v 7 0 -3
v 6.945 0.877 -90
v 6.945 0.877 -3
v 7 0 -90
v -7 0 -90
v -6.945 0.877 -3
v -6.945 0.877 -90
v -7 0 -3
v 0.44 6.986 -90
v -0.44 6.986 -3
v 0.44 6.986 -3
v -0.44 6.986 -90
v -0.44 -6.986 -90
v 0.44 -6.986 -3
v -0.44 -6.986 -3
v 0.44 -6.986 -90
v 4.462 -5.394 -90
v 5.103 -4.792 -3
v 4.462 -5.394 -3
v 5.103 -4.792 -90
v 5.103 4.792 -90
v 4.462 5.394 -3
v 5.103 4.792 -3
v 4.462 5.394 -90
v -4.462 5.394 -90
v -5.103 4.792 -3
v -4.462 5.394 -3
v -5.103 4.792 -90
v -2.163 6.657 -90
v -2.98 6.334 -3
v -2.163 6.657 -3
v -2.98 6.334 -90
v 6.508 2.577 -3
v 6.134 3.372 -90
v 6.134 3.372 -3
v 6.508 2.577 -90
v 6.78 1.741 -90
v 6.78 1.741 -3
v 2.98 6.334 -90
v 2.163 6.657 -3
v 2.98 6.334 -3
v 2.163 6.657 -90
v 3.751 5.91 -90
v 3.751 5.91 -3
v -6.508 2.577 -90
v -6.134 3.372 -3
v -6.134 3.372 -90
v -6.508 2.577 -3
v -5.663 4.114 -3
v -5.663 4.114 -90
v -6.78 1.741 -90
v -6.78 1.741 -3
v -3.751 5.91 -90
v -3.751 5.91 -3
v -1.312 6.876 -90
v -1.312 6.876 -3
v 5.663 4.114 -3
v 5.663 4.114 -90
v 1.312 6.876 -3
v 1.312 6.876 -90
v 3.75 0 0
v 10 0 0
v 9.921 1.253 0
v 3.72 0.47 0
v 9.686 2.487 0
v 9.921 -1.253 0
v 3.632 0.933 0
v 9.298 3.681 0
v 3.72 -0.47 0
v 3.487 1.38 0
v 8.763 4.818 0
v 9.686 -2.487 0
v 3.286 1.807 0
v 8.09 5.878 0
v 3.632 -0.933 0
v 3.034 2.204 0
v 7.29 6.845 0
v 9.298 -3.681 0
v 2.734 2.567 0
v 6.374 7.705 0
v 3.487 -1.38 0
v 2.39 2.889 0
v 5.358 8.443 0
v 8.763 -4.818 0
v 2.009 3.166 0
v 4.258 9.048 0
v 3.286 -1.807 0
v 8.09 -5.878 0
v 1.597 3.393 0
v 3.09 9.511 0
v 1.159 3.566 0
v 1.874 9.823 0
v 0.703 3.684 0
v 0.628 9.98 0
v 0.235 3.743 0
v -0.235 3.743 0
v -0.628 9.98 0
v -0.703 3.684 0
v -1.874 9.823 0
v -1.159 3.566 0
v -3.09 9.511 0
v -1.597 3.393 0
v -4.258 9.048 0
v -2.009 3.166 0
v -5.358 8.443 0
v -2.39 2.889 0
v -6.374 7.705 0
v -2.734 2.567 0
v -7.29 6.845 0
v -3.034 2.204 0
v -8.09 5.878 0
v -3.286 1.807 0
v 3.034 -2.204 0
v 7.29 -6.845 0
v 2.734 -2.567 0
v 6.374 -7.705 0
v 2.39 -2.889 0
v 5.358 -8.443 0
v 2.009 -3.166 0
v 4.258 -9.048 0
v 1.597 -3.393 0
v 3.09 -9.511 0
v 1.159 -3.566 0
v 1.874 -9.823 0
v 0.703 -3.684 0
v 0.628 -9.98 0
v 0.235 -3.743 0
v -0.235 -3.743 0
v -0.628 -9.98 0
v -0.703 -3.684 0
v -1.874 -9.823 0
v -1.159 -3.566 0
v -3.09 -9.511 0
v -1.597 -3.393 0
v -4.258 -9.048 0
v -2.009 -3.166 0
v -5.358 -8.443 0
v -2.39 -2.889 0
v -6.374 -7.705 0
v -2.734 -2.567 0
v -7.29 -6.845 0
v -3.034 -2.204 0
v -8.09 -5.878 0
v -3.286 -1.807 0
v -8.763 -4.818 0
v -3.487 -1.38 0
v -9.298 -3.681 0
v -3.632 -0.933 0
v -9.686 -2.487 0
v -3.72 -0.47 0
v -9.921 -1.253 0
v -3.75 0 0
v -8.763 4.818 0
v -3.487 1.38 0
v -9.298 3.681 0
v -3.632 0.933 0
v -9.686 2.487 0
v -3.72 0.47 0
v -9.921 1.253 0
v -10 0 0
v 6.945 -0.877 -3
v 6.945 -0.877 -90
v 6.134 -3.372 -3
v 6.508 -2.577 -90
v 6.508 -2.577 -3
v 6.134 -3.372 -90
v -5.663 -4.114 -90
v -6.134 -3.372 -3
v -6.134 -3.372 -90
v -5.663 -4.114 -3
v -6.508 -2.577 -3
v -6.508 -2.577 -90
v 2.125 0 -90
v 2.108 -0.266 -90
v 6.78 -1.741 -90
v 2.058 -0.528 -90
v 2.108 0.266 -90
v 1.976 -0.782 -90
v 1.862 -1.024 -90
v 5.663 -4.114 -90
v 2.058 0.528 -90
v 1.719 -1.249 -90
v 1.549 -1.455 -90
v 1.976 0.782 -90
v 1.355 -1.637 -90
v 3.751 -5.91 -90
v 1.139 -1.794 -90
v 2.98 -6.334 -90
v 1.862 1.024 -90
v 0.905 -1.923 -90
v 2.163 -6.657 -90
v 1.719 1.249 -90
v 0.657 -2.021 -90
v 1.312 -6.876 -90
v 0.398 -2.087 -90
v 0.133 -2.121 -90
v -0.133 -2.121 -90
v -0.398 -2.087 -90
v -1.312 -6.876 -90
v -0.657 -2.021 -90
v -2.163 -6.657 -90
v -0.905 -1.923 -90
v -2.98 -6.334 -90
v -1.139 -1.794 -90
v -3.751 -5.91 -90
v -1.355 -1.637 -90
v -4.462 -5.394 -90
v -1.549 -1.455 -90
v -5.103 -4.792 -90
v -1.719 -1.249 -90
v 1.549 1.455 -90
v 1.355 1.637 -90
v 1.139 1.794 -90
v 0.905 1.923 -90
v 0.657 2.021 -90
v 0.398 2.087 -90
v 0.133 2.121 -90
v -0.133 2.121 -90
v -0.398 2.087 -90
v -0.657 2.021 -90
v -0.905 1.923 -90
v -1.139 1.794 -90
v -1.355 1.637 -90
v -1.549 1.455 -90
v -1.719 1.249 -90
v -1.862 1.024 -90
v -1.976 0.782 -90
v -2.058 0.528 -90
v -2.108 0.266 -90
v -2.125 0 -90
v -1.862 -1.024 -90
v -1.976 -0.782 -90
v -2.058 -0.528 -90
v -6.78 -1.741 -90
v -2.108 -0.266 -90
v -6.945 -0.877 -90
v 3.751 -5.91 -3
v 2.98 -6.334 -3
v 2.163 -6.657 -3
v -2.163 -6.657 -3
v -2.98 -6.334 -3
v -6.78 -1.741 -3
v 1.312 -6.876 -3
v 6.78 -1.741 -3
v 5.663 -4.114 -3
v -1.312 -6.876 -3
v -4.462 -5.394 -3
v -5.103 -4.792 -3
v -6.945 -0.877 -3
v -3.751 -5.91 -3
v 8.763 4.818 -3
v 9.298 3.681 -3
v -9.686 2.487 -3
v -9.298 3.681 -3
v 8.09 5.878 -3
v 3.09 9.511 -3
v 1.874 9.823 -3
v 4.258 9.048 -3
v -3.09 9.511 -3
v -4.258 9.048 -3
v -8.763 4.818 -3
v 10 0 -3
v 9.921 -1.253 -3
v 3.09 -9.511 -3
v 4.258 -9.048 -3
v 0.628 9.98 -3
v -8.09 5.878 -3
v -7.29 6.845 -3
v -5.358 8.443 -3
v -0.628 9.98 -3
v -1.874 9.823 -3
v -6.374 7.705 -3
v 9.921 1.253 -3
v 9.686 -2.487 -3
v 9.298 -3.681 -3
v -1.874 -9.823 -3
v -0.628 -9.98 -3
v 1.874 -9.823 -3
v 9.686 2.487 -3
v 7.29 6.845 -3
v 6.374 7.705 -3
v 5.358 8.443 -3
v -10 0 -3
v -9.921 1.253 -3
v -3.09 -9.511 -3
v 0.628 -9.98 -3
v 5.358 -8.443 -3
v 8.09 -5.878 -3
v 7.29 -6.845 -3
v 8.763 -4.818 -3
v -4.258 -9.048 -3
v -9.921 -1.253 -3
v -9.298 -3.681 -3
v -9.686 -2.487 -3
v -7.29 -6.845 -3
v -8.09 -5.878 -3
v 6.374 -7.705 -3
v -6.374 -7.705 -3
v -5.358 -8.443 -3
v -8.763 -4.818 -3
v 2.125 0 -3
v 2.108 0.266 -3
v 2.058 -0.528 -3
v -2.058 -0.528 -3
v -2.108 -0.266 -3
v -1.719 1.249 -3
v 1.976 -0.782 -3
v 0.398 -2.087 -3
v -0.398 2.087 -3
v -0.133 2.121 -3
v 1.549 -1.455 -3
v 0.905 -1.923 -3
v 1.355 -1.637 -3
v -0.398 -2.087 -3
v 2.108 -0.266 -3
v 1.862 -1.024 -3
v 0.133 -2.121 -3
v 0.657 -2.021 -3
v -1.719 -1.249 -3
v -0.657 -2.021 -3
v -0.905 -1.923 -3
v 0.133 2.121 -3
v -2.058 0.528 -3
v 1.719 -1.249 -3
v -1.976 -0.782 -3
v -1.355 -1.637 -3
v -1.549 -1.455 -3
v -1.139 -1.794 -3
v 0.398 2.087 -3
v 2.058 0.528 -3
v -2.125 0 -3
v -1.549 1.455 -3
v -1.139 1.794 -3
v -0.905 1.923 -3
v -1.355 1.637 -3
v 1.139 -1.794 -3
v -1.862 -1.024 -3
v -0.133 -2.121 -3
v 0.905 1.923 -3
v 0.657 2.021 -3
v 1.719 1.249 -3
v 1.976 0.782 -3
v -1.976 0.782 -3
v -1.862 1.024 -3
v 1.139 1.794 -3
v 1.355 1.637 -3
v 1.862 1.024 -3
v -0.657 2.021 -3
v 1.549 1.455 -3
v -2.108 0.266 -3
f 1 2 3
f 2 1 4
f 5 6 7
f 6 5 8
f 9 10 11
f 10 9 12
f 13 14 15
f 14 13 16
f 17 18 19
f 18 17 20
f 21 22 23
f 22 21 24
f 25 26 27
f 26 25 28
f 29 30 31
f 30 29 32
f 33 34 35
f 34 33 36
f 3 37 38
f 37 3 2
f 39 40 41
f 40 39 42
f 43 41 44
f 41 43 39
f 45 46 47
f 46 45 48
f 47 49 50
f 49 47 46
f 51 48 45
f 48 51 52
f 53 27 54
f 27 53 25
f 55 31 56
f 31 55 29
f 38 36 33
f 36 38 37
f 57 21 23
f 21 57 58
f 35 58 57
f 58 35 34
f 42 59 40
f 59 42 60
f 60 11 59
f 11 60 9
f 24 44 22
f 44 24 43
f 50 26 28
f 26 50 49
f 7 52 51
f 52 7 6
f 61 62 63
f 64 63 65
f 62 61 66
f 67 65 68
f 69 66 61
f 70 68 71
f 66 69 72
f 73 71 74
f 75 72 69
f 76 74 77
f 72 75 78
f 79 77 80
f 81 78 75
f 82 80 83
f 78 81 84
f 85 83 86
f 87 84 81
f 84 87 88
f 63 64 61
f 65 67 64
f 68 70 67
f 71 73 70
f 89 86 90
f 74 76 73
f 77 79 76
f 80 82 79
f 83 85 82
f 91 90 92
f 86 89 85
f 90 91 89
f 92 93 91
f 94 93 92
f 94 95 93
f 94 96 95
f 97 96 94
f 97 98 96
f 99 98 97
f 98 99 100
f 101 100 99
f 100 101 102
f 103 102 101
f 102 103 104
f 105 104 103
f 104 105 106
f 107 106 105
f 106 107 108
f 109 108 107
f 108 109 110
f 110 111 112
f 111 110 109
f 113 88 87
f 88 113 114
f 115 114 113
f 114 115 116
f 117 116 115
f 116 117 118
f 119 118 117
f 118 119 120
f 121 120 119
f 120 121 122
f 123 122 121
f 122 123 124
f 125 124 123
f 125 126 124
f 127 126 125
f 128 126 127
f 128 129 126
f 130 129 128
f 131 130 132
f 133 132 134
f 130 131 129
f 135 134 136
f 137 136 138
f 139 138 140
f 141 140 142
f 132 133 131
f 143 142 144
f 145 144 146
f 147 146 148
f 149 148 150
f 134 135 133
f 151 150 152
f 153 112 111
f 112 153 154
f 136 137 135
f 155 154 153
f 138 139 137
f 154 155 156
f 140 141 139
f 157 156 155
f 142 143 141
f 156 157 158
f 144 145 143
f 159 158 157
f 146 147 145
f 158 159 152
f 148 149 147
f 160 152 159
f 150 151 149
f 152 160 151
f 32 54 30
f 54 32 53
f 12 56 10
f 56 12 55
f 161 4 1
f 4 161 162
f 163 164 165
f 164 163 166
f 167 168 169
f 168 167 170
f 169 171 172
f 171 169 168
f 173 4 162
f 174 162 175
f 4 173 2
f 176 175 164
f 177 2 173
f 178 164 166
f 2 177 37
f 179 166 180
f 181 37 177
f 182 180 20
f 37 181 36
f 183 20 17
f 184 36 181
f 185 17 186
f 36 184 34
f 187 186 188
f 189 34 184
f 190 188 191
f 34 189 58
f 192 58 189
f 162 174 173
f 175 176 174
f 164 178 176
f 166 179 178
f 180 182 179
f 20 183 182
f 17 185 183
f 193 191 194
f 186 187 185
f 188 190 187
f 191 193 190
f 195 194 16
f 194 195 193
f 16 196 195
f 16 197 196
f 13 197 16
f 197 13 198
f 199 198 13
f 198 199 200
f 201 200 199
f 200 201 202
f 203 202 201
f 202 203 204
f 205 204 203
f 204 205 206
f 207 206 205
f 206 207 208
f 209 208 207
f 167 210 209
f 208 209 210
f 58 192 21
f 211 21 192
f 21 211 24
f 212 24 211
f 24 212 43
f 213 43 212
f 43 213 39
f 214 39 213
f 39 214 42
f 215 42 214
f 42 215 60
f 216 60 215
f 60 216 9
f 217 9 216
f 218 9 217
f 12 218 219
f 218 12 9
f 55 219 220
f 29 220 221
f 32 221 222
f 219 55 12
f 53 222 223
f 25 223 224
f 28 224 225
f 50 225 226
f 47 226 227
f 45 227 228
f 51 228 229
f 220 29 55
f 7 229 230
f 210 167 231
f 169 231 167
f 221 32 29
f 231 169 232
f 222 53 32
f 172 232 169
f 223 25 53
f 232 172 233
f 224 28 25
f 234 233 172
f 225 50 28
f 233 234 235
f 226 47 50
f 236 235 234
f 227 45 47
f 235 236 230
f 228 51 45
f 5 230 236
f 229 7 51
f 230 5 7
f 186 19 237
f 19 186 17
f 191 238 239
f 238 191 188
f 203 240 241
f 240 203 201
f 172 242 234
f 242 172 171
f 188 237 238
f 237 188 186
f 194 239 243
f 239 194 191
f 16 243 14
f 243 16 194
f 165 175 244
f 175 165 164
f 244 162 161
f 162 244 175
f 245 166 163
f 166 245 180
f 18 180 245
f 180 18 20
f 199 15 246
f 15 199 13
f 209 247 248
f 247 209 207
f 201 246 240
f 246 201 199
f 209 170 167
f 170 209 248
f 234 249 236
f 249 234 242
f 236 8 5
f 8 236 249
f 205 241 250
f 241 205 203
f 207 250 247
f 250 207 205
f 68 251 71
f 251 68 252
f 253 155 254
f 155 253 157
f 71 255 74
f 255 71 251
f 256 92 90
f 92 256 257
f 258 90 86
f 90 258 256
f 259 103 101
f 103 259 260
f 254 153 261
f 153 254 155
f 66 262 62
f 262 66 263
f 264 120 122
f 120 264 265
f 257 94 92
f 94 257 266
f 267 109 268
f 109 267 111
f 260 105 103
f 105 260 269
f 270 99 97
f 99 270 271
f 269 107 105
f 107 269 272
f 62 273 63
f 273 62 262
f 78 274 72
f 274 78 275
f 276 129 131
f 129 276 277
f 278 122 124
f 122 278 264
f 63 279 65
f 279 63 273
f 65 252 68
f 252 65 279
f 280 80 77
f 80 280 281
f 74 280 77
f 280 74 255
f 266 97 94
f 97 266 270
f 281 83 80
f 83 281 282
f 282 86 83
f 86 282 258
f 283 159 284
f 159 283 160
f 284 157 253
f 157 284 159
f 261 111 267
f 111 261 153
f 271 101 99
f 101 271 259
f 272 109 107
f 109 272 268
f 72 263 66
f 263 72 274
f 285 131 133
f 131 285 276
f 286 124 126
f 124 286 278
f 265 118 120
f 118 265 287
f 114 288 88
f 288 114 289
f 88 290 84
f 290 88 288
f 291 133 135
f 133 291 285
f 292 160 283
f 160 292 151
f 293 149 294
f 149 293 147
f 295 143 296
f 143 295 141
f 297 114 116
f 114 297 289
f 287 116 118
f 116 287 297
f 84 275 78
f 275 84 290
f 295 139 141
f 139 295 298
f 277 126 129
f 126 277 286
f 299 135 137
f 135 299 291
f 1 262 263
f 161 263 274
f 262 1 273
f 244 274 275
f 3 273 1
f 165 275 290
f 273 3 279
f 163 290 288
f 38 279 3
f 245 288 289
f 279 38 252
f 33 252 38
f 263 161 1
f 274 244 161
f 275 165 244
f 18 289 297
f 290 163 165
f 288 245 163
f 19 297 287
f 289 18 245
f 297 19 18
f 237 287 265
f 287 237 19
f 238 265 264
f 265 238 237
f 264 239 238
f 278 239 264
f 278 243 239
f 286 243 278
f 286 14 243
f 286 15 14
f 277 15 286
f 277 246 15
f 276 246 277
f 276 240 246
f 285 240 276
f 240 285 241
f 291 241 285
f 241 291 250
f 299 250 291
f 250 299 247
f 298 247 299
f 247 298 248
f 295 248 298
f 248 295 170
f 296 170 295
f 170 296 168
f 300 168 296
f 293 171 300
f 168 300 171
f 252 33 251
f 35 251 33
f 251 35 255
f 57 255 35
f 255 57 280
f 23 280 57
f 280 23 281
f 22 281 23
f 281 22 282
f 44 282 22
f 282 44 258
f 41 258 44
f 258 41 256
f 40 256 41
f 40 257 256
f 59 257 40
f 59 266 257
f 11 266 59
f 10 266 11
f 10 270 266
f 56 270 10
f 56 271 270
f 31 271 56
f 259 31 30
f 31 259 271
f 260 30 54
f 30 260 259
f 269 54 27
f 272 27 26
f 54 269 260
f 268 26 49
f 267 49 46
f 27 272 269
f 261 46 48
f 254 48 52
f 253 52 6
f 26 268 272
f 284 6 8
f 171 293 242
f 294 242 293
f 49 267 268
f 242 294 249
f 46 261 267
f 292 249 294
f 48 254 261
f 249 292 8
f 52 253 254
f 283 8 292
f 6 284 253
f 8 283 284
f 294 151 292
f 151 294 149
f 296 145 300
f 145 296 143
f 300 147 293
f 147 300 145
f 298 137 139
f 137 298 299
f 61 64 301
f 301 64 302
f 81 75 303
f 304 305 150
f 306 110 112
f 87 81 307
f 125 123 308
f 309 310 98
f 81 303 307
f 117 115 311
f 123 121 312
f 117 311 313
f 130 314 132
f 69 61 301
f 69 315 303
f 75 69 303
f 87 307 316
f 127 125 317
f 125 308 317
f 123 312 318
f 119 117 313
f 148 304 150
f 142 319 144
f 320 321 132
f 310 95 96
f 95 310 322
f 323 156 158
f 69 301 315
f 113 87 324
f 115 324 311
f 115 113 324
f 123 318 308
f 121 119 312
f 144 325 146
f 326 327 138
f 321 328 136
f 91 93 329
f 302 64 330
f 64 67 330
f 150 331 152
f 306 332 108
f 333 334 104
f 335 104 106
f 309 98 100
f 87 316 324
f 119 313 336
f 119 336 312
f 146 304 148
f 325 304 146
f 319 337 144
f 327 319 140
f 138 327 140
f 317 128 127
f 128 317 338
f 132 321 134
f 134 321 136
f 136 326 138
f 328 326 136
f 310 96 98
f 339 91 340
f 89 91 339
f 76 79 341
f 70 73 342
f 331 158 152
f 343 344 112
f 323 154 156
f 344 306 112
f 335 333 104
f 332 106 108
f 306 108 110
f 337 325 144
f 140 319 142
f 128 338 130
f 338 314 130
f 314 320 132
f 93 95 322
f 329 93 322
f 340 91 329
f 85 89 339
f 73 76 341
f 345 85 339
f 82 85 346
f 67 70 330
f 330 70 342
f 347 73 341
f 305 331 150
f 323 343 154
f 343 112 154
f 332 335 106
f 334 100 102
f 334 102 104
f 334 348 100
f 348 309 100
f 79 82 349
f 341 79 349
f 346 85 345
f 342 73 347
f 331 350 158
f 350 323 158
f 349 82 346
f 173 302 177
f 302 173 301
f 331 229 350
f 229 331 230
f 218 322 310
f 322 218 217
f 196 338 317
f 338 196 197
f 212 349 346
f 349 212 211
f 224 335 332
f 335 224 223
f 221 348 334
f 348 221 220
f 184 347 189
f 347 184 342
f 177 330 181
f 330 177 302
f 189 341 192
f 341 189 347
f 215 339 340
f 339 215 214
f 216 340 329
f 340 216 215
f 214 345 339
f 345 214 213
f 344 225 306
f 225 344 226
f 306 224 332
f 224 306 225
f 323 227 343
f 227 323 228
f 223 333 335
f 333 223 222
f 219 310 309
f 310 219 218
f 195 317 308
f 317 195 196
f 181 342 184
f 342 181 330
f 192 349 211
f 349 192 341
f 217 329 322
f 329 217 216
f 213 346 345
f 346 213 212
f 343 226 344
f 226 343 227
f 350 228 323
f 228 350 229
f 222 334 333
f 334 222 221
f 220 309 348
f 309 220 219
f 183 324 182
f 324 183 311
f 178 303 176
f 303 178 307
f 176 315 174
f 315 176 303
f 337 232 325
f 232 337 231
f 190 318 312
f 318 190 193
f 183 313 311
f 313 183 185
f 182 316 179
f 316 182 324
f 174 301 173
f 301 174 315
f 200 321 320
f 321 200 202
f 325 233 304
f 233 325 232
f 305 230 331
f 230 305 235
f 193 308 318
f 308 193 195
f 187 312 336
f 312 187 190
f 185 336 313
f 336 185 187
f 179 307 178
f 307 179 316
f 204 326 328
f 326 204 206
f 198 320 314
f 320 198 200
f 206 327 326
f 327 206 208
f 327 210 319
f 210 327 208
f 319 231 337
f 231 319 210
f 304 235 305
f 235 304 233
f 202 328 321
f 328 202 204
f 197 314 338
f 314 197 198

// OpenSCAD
$fn = 50;


difference() {
	union() {
		translate(v = [0, 0, -90.0000000000]) {
			cylinder(h = 90, r = 7.0000000000);
		}
		translate(v = [0, 0, -3.0000000000]) {
			cylinder(h = 3, r = 10.0000000000);
		}
	}
	union() {
		translate(v = [0, 0, 0]) {
			rotate(a = [0, 0, 0]) {
				difference() {
					union() {
						#translate(v = [0, 0, -90.0000000000]) {
							cylinder(h = 90, r = 2.0000000000);
						}
						#translate(v = [0, 0, -3]) {
							cylinder(h = 3, r = 7.0000000000, r1 = 2.1250000000, r2 = 3.7500000000);
						}
						#translate(v = [0, 0, -90.0000000000]) {
							cylinder(h = 90, r = 2.1250000000);
						}
						#translate(v = [0, 0, -90.0000000000]) {
							cylinder(h = 90, r = 2.0000000000);
						}
					}
					union();
				}
			}
		}
	}
}
